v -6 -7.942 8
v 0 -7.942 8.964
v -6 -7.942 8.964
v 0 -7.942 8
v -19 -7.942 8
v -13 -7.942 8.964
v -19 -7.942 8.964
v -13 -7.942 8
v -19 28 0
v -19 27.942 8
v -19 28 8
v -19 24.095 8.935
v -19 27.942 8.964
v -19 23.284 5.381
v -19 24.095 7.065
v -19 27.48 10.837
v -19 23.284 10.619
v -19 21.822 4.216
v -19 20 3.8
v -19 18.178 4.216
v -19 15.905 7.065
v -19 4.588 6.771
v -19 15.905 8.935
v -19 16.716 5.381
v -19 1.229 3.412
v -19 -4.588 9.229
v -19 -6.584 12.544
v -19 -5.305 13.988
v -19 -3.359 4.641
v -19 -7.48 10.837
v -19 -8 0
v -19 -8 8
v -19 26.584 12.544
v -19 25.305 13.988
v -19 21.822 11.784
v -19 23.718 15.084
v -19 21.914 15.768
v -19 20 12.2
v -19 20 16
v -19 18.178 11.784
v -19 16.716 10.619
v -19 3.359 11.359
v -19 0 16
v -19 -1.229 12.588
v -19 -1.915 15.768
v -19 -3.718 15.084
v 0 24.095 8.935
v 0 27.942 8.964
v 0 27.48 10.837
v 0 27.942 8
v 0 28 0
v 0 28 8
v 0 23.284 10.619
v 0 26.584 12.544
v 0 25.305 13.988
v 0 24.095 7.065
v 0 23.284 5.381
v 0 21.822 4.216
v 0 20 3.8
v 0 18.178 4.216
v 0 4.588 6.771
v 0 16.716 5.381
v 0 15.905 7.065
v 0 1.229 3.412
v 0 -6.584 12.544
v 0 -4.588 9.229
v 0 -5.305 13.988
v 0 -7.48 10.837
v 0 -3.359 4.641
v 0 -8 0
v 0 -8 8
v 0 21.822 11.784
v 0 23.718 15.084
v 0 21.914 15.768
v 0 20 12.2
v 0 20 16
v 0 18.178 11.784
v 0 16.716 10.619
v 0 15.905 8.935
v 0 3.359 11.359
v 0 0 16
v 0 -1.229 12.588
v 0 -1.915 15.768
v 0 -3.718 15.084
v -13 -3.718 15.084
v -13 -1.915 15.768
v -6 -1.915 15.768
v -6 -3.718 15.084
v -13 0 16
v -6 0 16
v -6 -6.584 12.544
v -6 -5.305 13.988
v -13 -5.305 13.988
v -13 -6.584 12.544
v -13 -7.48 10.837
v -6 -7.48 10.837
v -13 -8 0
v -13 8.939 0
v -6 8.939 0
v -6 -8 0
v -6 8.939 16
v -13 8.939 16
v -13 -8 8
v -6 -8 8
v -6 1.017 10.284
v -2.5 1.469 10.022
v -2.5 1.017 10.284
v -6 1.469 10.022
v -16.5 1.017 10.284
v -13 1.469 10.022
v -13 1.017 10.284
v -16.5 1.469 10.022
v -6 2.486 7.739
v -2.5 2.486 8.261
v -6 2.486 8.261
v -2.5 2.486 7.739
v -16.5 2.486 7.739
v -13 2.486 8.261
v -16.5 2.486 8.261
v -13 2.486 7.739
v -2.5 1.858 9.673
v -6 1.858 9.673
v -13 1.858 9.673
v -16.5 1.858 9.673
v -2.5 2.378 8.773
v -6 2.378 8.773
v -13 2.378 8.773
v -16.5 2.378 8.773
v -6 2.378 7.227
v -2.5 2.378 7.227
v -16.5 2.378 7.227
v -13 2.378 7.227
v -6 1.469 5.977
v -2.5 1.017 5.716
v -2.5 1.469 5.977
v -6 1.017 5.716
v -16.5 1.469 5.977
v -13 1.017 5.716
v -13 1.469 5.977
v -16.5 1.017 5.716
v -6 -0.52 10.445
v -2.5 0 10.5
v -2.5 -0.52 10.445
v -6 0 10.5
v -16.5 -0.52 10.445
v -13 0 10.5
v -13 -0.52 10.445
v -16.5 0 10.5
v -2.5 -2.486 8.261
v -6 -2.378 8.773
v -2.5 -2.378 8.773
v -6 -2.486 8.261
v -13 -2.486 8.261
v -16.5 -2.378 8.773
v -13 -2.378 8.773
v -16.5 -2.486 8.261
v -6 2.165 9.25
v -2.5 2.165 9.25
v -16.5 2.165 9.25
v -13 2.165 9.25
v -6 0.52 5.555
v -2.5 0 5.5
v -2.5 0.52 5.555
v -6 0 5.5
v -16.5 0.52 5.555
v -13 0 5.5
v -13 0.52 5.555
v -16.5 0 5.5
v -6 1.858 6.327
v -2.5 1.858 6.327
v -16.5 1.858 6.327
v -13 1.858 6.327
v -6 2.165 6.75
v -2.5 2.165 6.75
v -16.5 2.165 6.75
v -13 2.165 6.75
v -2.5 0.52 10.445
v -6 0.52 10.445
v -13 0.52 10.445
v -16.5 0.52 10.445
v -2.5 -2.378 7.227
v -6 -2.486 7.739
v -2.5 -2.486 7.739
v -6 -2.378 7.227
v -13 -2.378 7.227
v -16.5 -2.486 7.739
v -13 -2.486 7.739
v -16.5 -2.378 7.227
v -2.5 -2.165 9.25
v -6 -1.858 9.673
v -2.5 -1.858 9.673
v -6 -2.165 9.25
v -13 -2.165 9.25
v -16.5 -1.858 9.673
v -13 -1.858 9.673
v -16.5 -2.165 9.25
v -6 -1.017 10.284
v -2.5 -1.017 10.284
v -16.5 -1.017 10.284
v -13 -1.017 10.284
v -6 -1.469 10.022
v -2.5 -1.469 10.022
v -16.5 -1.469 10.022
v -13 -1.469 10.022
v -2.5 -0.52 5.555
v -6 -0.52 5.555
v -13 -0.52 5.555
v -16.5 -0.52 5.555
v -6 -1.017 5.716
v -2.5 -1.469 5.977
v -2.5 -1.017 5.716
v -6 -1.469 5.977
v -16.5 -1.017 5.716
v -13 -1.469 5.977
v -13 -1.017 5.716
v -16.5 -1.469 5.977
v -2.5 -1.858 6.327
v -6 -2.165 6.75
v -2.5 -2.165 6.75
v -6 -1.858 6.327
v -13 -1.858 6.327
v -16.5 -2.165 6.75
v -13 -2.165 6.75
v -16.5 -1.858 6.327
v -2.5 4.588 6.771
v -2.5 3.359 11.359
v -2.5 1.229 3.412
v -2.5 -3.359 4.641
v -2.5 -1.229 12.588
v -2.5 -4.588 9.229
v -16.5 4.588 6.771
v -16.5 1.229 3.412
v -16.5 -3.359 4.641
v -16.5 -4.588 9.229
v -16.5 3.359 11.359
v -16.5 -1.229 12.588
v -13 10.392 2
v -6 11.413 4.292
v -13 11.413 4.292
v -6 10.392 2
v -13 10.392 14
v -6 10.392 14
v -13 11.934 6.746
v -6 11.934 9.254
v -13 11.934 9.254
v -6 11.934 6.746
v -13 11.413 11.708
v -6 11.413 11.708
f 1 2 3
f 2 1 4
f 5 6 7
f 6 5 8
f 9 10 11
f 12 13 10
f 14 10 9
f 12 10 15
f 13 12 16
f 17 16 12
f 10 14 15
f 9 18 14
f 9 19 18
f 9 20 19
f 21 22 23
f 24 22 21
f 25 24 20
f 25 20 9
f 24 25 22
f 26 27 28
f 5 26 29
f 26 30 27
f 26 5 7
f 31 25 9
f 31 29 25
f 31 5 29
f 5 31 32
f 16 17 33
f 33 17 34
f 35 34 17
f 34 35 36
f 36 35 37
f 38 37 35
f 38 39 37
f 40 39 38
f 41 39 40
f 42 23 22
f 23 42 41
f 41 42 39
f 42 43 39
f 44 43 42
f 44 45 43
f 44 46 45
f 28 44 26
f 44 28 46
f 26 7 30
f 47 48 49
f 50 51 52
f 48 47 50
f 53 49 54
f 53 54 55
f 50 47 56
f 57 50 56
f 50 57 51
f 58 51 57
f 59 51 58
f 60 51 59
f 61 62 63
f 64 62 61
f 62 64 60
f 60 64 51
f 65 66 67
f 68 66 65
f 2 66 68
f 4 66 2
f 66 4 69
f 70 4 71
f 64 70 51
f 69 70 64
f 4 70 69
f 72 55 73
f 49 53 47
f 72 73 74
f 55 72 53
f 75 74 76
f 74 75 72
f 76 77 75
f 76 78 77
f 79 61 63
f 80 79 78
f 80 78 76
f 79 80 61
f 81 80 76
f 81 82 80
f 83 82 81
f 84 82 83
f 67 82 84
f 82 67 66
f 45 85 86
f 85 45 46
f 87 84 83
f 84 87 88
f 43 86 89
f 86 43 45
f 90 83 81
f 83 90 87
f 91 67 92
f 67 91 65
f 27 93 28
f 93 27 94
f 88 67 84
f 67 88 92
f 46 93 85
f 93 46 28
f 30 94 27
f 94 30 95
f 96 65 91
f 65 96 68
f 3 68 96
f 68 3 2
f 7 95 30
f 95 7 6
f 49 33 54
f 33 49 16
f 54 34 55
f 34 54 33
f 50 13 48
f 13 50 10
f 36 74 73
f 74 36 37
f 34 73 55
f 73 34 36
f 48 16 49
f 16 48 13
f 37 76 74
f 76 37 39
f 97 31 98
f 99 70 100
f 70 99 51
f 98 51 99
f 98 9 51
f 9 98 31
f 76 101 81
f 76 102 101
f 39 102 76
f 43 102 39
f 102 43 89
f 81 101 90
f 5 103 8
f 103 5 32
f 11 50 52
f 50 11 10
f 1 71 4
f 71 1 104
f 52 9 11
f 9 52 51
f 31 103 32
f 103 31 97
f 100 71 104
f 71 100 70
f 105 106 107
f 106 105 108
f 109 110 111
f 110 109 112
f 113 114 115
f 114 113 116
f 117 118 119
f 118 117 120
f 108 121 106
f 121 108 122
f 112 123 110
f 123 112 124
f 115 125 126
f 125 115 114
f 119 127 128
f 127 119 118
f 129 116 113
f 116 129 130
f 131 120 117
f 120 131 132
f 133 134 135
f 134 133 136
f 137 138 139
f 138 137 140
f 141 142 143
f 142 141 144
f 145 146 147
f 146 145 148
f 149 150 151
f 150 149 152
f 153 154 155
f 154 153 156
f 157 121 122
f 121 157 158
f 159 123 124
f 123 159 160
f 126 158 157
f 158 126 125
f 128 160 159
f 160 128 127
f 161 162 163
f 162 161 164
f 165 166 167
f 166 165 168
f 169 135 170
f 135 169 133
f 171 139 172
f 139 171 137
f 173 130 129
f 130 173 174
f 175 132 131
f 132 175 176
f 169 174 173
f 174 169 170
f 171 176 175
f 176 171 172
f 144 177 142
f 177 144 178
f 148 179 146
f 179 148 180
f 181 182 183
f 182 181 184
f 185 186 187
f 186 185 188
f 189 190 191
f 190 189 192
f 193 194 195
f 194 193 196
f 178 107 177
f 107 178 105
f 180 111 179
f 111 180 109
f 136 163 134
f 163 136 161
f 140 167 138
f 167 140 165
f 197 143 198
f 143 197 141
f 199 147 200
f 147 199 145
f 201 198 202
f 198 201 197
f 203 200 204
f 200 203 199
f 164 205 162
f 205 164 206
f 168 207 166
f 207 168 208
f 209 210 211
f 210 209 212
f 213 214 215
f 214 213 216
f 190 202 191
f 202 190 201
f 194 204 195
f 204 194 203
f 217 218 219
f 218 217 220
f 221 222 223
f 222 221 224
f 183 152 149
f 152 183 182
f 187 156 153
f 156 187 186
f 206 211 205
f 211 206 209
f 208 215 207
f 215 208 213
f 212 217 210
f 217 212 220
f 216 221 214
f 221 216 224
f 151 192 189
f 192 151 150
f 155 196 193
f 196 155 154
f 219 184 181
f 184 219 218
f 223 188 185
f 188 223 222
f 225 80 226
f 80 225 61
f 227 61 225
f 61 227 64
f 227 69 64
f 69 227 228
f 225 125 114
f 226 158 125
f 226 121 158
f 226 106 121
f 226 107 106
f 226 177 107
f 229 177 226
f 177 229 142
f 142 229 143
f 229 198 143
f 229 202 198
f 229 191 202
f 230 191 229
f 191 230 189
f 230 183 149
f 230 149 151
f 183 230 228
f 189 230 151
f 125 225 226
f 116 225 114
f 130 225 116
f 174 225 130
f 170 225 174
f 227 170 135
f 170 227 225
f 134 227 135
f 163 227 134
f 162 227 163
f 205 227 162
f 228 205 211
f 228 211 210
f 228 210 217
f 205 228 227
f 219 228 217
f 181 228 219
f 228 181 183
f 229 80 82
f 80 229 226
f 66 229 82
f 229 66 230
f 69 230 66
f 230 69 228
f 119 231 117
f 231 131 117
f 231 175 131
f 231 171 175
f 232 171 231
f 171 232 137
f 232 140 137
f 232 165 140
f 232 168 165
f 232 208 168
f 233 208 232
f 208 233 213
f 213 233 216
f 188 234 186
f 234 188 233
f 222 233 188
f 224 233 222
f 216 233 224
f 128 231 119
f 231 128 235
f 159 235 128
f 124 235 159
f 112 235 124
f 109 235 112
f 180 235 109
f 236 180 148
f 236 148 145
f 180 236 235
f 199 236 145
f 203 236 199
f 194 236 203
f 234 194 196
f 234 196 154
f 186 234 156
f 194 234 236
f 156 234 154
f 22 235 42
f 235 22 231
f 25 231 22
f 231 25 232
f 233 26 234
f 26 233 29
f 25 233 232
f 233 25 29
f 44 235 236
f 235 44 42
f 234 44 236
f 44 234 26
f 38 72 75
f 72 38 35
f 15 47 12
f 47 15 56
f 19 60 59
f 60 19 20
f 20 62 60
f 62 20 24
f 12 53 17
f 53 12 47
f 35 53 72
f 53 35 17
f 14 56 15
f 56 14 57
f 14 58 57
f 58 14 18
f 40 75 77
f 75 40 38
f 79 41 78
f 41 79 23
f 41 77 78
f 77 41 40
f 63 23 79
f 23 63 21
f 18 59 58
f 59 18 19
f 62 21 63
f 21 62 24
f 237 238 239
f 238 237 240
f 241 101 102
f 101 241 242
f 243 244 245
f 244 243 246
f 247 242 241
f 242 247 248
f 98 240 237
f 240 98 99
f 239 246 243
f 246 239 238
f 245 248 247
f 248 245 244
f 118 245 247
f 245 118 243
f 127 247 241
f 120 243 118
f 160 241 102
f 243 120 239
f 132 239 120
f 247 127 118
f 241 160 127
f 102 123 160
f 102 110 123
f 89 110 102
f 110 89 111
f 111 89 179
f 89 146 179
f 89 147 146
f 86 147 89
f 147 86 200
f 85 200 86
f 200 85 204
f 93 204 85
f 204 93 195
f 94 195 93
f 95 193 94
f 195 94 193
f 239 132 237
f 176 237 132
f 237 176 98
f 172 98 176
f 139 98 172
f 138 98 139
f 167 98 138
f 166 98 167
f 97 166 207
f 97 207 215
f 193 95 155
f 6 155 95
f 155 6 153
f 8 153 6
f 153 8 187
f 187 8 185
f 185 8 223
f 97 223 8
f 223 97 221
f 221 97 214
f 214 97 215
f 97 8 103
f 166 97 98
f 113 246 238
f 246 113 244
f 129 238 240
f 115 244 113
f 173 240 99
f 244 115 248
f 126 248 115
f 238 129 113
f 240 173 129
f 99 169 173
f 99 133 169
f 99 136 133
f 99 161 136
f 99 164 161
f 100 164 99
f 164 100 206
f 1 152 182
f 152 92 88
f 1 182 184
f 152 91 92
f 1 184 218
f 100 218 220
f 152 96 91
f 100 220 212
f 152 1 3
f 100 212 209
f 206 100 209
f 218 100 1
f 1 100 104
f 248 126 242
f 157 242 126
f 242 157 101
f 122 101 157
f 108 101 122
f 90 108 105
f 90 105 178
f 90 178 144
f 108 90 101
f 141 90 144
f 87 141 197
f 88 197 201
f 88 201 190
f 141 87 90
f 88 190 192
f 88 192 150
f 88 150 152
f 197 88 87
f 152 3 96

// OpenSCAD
module y_idler_base(){
 translate(v = [0, 0, 0]) cylinder(h = 19, r=8);	
 translate(v = [0, 20, 0]) cylinder(h = 19, r=8);
 translate(v = [0, 10, 9.5]) cube(size = [16, 20, 19], center=true);
 translate(v = [-4, 10, 9.5]) cube(size = [8, 16+20, 19], center=true);
}

module y_idler_holes(){
 // M5   
 translate(v = [0, 0, -25]) cylinder(h = 50, r=2.5, $fn=30);	
 translate(v = [0, 0, 0]) rotate([0, 0, 45]) cylinder(h = 2.5, r=4.75, $fn=6);
 translate(v = [0, 0, 19-2.5]) rotate([0, 0, 45]) cylinder(h = 2.5, r=4.75, $fn=6);	
 translate(v = [0, 20, -1]) cylinder(h = 25, r=4.2);
 translate(v = [0, 0, 6]) cylinder(h = 7, r=12);
}

// Final part
module y_idler(){
 translate(v = [0, 0, 8]) rotate([0, -90, 0]) difference(){
  y_idler_base();
  y_idler_holes();
 }
}

y_idler();
